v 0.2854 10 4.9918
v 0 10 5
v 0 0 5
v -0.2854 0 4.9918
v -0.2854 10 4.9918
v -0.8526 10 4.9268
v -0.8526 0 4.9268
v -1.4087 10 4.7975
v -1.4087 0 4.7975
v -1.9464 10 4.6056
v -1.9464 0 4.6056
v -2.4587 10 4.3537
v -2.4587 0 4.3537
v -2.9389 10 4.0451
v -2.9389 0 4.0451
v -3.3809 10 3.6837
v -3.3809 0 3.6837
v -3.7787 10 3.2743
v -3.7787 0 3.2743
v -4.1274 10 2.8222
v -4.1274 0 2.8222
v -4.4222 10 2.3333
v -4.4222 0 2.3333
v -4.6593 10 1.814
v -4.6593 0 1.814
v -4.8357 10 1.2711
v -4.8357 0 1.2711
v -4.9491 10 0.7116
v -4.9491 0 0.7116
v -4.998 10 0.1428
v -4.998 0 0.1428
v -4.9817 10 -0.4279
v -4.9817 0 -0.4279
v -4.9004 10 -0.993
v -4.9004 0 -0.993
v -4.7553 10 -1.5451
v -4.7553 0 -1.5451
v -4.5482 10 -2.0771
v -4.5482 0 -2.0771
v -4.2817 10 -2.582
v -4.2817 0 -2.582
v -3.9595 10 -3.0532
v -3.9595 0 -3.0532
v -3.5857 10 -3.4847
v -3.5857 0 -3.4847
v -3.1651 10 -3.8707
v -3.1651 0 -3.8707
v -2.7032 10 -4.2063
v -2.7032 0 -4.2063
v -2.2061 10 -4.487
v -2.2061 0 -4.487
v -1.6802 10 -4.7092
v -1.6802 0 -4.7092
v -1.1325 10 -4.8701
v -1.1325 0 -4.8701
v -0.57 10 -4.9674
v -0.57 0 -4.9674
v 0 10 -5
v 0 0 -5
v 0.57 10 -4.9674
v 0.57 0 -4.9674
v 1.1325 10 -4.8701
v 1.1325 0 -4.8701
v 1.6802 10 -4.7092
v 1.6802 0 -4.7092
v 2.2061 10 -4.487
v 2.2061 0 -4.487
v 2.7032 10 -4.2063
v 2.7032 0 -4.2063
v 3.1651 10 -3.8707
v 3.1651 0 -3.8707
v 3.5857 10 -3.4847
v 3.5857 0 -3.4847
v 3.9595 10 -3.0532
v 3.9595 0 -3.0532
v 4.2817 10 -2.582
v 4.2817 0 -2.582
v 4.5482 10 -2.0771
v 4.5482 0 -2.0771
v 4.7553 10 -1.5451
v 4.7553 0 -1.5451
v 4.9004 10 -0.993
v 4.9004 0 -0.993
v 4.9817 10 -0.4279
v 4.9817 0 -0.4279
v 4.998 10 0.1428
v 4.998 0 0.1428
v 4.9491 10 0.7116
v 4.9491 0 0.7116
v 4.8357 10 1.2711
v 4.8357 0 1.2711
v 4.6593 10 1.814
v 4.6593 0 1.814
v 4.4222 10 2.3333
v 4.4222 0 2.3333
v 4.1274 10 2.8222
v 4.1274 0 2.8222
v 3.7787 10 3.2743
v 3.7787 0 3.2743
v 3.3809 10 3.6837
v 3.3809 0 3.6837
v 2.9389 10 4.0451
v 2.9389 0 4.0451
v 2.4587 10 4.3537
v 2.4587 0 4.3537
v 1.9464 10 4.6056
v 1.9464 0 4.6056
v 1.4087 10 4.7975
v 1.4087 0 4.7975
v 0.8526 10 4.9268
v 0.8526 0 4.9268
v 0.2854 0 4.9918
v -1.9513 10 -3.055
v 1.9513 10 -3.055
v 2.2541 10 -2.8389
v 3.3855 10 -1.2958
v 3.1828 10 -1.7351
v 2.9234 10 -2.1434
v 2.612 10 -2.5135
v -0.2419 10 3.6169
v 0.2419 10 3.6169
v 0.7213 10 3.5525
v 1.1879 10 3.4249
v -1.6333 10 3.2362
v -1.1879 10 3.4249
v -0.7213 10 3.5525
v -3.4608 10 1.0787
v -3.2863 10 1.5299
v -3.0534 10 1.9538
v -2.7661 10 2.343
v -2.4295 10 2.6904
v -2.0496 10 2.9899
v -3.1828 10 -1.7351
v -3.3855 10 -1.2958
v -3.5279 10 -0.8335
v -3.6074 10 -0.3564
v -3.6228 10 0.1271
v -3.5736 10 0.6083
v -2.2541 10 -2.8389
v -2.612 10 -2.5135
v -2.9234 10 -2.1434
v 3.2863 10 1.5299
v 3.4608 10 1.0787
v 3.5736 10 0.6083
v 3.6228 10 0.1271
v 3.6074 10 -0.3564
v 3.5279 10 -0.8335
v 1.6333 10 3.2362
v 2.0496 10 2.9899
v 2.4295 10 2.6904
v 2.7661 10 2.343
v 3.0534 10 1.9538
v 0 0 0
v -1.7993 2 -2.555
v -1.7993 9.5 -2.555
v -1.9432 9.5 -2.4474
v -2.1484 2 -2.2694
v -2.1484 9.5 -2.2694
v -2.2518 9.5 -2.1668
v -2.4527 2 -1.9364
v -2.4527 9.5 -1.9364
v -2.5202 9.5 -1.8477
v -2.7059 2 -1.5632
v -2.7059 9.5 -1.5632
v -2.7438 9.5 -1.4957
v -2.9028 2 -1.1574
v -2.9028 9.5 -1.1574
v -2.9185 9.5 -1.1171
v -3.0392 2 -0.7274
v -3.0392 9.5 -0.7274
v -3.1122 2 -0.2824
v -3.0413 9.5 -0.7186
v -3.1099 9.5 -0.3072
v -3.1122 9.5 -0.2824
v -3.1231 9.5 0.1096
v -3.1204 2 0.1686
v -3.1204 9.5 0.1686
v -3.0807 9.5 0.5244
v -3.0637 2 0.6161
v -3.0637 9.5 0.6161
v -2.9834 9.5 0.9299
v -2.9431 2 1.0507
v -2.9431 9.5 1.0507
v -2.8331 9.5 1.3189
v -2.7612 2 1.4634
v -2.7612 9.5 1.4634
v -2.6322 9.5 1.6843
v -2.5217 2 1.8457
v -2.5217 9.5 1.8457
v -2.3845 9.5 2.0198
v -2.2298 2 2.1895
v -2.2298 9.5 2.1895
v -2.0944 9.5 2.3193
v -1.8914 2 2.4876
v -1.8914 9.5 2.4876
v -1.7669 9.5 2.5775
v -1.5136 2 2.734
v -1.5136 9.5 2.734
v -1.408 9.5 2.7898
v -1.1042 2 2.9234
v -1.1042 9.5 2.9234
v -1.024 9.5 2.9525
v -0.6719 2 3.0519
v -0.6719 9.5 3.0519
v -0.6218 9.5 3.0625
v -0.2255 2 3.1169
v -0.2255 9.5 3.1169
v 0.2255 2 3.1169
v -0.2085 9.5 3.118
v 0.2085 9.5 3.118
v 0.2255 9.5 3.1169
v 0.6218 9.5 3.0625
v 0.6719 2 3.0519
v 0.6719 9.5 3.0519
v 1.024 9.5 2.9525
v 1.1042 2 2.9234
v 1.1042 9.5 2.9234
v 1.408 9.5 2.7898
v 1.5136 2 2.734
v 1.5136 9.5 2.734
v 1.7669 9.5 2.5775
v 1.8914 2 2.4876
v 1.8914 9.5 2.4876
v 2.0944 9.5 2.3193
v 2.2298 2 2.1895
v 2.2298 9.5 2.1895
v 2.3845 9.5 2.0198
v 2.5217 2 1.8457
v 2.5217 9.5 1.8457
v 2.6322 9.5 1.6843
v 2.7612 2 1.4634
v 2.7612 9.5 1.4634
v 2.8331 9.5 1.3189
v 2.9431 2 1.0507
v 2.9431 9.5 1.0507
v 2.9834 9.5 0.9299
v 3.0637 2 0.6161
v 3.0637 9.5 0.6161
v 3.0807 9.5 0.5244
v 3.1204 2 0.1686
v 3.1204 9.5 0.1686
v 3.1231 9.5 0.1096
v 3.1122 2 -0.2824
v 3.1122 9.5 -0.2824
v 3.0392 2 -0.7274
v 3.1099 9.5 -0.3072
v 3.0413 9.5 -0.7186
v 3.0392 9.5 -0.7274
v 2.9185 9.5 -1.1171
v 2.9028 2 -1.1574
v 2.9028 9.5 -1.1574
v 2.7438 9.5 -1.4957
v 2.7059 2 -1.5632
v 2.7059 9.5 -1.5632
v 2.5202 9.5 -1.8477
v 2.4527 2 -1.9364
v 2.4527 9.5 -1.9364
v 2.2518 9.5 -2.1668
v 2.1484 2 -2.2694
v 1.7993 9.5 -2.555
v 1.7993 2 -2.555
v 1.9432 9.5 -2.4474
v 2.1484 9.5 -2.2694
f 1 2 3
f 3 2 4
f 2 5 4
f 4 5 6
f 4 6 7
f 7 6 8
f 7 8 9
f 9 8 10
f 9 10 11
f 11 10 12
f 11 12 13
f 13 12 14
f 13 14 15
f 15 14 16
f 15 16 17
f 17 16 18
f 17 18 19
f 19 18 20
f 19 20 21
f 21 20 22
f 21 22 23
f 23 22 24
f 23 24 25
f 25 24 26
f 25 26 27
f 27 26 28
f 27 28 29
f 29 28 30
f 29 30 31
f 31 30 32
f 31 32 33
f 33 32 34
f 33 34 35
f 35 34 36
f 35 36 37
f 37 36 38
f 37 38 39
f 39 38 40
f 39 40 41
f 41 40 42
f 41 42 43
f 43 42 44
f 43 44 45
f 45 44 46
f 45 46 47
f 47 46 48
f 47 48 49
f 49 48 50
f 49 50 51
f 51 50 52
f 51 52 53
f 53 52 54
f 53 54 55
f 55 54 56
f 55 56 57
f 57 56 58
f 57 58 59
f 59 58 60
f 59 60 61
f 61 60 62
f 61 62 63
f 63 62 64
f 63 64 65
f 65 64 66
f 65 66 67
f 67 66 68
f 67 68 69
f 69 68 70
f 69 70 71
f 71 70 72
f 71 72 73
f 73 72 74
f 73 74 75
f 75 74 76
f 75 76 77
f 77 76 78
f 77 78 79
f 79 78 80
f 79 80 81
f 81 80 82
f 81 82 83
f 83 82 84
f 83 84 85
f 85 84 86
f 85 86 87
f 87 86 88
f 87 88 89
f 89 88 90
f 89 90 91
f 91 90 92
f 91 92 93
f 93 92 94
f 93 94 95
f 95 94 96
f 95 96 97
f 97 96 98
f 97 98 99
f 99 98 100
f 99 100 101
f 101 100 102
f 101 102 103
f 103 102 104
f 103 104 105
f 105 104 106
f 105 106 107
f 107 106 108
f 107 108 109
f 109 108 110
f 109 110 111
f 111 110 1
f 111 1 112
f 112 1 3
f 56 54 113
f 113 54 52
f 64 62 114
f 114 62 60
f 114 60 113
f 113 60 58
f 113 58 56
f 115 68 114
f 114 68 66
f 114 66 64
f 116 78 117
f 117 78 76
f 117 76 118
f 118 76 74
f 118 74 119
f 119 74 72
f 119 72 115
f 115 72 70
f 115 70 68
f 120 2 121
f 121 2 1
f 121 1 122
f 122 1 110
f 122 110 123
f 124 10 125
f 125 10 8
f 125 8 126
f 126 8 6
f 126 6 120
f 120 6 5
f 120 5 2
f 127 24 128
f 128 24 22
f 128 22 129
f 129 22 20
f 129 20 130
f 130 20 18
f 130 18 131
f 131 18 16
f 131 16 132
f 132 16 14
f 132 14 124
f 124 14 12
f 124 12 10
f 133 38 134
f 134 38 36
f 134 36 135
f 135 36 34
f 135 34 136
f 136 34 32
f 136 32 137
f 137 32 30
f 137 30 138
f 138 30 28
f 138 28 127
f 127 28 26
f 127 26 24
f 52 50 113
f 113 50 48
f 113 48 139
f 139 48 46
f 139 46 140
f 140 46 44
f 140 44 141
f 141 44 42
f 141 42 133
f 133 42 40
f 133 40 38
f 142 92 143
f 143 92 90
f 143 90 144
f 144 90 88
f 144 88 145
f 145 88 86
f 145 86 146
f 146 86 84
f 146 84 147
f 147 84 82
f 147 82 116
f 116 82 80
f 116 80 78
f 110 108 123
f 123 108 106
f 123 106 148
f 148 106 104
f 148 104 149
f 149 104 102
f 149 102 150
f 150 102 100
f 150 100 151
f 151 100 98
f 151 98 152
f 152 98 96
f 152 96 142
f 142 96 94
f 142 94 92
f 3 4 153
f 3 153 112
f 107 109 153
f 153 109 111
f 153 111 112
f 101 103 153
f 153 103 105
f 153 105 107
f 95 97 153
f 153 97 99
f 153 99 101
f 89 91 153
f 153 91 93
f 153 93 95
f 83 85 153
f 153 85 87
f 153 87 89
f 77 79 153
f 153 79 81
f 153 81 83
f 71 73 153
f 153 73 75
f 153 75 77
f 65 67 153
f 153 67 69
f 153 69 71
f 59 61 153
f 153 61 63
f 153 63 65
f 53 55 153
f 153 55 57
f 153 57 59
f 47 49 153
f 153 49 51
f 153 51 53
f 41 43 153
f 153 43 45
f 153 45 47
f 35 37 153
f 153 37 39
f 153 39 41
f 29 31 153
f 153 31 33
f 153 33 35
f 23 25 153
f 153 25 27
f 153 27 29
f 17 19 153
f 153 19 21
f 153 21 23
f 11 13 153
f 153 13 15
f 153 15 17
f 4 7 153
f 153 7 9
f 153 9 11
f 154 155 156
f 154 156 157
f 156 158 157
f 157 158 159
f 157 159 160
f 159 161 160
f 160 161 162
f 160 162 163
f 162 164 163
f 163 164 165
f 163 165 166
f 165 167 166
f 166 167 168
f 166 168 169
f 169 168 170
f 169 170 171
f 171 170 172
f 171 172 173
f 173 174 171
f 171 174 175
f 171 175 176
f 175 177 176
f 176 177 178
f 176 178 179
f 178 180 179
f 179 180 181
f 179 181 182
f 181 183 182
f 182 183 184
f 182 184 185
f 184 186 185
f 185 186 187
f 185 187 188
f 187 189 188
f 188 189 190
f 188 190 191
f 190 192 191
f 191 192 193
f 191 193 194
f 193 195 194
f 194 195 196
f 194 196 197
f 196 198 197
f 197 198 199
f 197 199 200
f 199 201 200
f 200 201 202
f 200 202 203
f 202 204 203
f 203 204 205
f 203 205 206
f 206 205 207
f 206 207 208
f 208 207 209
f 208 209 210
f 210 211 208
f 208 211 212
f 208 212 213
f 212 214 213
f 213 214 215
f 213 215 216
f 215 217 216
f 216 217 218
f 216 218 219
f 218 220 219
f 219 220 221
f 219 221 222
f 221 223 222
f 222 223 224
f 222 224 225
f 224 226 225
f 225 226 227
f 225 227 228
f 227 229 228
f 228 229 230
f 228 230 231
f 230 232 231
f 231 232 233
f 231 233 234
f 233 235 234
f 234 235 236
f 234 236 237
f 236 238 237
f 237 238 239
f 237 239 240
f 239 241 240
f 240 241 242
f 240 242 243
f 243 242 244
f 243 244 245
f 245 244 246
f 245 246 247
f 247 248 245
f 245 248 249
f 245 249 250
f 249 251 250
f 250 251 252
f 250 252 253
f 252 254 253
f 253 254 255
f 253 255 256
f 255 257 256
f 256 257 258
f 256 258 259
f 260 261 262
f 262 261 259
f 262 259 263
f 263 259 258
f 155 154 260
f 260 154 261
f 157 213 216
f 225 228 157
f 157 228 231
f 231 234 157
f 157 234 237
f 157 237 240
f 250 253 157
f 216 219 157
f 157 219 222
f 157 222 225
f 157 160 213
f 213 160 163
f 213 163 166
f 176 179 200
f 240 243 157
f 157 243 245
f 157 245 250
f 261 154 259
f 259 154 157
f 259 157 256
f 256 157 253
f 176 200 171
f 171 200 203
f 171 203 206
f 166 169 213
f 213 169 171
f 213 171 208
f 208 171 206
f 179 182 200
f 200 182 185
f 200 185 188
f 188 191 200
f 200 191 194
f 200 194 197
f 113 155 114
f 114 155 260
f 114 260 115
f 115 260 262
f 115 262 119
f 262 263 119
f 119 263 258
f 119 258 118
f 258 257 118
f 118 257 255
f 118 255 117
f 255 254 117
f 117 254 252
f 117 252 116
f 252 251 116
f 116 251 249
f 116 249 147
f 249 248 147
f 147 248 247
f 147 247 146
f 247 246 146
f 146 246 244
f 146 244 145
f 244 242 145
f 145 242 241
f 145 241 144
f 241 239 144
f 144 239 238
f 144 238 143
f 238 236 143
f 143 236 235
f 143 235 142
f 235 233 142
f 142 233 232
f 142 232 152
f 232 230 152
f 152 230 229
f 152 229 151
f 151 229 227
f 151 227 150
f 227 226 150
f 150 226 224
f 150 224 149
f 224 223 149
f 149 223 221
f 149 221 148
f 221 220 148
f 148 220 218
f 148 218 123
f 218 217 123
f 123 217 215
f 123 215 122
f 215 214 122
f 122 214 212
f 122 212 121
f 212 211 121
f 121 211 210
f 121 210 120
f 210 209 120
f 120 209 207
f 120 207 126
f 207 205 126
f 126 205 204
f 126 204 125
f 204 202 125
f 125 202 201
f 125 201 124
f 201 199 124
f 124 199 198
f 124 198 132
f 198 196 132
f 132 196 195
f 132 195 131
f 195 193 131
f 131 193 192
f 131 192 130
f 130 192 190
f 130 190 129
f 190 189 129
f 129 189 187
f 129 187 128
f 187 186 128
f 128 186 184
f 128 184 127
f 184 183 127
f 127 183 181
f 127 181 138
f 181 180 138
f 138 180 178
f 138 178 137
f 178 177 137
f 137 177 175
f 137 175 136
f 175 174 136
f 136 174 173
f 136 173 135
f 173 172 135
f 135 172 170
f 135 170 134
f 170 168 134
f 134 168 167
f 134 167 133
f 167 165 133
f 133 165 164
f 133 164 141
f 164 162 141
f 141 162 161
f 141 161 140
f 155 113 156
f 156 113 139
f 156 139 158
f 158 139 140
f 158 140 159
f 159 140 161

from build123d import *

# Parameters (mm, degrees)
SKETCH1_R           = 5
BOSS_EXTRUDE1_DEPTH = 10
CUT_EXTRUDE1_DEPTH  = 8
CHAMFER1_SIZE       = 0.5


with BuildPart() as part:
    # Sketch1 → Boss-Extrude1 (new body)
    with BuildSketch(Plane(origin=(0, 0, 0), x_dir=(1, 0, 0), z_dir=(0, 1, 0))):
        with Locations(Location((0, 0, 0), (0, 0, 270))):
            Circle(SKETCH1_R)
    extrude(amount=BOSS_EXTRUDE1_DEPTH)

    # Sketch2 → Cut-Extrude1 (cut)
    with BuildSketch(Plane(origin=(0, 10, 0), x_dir=(1, 0, 0), z_dir=(0, 1, 0))):
        with BuildLine():
            Line((-1.79933321, 2.555), (1.79933321, 2.555))
            ThreePointArc((1.79933321, 2.555), (0, -3.125), (-1.79933321, 2.555))
        make_face()
    extrude(amount=-CUT_EXTRUDE1_DEPTH, mode=Mode.SUBTRACT)

    # Chamfer1
    chamfer1_edges = [part.edges().sort_by_distance(p)[0] for p in [
        (0, 10, 3.125),
        (0, 10, -2.555),
    ]]
    chamfer(chamfer1_edges, length=CHAMFER1_SIZE)


solid = part.part
